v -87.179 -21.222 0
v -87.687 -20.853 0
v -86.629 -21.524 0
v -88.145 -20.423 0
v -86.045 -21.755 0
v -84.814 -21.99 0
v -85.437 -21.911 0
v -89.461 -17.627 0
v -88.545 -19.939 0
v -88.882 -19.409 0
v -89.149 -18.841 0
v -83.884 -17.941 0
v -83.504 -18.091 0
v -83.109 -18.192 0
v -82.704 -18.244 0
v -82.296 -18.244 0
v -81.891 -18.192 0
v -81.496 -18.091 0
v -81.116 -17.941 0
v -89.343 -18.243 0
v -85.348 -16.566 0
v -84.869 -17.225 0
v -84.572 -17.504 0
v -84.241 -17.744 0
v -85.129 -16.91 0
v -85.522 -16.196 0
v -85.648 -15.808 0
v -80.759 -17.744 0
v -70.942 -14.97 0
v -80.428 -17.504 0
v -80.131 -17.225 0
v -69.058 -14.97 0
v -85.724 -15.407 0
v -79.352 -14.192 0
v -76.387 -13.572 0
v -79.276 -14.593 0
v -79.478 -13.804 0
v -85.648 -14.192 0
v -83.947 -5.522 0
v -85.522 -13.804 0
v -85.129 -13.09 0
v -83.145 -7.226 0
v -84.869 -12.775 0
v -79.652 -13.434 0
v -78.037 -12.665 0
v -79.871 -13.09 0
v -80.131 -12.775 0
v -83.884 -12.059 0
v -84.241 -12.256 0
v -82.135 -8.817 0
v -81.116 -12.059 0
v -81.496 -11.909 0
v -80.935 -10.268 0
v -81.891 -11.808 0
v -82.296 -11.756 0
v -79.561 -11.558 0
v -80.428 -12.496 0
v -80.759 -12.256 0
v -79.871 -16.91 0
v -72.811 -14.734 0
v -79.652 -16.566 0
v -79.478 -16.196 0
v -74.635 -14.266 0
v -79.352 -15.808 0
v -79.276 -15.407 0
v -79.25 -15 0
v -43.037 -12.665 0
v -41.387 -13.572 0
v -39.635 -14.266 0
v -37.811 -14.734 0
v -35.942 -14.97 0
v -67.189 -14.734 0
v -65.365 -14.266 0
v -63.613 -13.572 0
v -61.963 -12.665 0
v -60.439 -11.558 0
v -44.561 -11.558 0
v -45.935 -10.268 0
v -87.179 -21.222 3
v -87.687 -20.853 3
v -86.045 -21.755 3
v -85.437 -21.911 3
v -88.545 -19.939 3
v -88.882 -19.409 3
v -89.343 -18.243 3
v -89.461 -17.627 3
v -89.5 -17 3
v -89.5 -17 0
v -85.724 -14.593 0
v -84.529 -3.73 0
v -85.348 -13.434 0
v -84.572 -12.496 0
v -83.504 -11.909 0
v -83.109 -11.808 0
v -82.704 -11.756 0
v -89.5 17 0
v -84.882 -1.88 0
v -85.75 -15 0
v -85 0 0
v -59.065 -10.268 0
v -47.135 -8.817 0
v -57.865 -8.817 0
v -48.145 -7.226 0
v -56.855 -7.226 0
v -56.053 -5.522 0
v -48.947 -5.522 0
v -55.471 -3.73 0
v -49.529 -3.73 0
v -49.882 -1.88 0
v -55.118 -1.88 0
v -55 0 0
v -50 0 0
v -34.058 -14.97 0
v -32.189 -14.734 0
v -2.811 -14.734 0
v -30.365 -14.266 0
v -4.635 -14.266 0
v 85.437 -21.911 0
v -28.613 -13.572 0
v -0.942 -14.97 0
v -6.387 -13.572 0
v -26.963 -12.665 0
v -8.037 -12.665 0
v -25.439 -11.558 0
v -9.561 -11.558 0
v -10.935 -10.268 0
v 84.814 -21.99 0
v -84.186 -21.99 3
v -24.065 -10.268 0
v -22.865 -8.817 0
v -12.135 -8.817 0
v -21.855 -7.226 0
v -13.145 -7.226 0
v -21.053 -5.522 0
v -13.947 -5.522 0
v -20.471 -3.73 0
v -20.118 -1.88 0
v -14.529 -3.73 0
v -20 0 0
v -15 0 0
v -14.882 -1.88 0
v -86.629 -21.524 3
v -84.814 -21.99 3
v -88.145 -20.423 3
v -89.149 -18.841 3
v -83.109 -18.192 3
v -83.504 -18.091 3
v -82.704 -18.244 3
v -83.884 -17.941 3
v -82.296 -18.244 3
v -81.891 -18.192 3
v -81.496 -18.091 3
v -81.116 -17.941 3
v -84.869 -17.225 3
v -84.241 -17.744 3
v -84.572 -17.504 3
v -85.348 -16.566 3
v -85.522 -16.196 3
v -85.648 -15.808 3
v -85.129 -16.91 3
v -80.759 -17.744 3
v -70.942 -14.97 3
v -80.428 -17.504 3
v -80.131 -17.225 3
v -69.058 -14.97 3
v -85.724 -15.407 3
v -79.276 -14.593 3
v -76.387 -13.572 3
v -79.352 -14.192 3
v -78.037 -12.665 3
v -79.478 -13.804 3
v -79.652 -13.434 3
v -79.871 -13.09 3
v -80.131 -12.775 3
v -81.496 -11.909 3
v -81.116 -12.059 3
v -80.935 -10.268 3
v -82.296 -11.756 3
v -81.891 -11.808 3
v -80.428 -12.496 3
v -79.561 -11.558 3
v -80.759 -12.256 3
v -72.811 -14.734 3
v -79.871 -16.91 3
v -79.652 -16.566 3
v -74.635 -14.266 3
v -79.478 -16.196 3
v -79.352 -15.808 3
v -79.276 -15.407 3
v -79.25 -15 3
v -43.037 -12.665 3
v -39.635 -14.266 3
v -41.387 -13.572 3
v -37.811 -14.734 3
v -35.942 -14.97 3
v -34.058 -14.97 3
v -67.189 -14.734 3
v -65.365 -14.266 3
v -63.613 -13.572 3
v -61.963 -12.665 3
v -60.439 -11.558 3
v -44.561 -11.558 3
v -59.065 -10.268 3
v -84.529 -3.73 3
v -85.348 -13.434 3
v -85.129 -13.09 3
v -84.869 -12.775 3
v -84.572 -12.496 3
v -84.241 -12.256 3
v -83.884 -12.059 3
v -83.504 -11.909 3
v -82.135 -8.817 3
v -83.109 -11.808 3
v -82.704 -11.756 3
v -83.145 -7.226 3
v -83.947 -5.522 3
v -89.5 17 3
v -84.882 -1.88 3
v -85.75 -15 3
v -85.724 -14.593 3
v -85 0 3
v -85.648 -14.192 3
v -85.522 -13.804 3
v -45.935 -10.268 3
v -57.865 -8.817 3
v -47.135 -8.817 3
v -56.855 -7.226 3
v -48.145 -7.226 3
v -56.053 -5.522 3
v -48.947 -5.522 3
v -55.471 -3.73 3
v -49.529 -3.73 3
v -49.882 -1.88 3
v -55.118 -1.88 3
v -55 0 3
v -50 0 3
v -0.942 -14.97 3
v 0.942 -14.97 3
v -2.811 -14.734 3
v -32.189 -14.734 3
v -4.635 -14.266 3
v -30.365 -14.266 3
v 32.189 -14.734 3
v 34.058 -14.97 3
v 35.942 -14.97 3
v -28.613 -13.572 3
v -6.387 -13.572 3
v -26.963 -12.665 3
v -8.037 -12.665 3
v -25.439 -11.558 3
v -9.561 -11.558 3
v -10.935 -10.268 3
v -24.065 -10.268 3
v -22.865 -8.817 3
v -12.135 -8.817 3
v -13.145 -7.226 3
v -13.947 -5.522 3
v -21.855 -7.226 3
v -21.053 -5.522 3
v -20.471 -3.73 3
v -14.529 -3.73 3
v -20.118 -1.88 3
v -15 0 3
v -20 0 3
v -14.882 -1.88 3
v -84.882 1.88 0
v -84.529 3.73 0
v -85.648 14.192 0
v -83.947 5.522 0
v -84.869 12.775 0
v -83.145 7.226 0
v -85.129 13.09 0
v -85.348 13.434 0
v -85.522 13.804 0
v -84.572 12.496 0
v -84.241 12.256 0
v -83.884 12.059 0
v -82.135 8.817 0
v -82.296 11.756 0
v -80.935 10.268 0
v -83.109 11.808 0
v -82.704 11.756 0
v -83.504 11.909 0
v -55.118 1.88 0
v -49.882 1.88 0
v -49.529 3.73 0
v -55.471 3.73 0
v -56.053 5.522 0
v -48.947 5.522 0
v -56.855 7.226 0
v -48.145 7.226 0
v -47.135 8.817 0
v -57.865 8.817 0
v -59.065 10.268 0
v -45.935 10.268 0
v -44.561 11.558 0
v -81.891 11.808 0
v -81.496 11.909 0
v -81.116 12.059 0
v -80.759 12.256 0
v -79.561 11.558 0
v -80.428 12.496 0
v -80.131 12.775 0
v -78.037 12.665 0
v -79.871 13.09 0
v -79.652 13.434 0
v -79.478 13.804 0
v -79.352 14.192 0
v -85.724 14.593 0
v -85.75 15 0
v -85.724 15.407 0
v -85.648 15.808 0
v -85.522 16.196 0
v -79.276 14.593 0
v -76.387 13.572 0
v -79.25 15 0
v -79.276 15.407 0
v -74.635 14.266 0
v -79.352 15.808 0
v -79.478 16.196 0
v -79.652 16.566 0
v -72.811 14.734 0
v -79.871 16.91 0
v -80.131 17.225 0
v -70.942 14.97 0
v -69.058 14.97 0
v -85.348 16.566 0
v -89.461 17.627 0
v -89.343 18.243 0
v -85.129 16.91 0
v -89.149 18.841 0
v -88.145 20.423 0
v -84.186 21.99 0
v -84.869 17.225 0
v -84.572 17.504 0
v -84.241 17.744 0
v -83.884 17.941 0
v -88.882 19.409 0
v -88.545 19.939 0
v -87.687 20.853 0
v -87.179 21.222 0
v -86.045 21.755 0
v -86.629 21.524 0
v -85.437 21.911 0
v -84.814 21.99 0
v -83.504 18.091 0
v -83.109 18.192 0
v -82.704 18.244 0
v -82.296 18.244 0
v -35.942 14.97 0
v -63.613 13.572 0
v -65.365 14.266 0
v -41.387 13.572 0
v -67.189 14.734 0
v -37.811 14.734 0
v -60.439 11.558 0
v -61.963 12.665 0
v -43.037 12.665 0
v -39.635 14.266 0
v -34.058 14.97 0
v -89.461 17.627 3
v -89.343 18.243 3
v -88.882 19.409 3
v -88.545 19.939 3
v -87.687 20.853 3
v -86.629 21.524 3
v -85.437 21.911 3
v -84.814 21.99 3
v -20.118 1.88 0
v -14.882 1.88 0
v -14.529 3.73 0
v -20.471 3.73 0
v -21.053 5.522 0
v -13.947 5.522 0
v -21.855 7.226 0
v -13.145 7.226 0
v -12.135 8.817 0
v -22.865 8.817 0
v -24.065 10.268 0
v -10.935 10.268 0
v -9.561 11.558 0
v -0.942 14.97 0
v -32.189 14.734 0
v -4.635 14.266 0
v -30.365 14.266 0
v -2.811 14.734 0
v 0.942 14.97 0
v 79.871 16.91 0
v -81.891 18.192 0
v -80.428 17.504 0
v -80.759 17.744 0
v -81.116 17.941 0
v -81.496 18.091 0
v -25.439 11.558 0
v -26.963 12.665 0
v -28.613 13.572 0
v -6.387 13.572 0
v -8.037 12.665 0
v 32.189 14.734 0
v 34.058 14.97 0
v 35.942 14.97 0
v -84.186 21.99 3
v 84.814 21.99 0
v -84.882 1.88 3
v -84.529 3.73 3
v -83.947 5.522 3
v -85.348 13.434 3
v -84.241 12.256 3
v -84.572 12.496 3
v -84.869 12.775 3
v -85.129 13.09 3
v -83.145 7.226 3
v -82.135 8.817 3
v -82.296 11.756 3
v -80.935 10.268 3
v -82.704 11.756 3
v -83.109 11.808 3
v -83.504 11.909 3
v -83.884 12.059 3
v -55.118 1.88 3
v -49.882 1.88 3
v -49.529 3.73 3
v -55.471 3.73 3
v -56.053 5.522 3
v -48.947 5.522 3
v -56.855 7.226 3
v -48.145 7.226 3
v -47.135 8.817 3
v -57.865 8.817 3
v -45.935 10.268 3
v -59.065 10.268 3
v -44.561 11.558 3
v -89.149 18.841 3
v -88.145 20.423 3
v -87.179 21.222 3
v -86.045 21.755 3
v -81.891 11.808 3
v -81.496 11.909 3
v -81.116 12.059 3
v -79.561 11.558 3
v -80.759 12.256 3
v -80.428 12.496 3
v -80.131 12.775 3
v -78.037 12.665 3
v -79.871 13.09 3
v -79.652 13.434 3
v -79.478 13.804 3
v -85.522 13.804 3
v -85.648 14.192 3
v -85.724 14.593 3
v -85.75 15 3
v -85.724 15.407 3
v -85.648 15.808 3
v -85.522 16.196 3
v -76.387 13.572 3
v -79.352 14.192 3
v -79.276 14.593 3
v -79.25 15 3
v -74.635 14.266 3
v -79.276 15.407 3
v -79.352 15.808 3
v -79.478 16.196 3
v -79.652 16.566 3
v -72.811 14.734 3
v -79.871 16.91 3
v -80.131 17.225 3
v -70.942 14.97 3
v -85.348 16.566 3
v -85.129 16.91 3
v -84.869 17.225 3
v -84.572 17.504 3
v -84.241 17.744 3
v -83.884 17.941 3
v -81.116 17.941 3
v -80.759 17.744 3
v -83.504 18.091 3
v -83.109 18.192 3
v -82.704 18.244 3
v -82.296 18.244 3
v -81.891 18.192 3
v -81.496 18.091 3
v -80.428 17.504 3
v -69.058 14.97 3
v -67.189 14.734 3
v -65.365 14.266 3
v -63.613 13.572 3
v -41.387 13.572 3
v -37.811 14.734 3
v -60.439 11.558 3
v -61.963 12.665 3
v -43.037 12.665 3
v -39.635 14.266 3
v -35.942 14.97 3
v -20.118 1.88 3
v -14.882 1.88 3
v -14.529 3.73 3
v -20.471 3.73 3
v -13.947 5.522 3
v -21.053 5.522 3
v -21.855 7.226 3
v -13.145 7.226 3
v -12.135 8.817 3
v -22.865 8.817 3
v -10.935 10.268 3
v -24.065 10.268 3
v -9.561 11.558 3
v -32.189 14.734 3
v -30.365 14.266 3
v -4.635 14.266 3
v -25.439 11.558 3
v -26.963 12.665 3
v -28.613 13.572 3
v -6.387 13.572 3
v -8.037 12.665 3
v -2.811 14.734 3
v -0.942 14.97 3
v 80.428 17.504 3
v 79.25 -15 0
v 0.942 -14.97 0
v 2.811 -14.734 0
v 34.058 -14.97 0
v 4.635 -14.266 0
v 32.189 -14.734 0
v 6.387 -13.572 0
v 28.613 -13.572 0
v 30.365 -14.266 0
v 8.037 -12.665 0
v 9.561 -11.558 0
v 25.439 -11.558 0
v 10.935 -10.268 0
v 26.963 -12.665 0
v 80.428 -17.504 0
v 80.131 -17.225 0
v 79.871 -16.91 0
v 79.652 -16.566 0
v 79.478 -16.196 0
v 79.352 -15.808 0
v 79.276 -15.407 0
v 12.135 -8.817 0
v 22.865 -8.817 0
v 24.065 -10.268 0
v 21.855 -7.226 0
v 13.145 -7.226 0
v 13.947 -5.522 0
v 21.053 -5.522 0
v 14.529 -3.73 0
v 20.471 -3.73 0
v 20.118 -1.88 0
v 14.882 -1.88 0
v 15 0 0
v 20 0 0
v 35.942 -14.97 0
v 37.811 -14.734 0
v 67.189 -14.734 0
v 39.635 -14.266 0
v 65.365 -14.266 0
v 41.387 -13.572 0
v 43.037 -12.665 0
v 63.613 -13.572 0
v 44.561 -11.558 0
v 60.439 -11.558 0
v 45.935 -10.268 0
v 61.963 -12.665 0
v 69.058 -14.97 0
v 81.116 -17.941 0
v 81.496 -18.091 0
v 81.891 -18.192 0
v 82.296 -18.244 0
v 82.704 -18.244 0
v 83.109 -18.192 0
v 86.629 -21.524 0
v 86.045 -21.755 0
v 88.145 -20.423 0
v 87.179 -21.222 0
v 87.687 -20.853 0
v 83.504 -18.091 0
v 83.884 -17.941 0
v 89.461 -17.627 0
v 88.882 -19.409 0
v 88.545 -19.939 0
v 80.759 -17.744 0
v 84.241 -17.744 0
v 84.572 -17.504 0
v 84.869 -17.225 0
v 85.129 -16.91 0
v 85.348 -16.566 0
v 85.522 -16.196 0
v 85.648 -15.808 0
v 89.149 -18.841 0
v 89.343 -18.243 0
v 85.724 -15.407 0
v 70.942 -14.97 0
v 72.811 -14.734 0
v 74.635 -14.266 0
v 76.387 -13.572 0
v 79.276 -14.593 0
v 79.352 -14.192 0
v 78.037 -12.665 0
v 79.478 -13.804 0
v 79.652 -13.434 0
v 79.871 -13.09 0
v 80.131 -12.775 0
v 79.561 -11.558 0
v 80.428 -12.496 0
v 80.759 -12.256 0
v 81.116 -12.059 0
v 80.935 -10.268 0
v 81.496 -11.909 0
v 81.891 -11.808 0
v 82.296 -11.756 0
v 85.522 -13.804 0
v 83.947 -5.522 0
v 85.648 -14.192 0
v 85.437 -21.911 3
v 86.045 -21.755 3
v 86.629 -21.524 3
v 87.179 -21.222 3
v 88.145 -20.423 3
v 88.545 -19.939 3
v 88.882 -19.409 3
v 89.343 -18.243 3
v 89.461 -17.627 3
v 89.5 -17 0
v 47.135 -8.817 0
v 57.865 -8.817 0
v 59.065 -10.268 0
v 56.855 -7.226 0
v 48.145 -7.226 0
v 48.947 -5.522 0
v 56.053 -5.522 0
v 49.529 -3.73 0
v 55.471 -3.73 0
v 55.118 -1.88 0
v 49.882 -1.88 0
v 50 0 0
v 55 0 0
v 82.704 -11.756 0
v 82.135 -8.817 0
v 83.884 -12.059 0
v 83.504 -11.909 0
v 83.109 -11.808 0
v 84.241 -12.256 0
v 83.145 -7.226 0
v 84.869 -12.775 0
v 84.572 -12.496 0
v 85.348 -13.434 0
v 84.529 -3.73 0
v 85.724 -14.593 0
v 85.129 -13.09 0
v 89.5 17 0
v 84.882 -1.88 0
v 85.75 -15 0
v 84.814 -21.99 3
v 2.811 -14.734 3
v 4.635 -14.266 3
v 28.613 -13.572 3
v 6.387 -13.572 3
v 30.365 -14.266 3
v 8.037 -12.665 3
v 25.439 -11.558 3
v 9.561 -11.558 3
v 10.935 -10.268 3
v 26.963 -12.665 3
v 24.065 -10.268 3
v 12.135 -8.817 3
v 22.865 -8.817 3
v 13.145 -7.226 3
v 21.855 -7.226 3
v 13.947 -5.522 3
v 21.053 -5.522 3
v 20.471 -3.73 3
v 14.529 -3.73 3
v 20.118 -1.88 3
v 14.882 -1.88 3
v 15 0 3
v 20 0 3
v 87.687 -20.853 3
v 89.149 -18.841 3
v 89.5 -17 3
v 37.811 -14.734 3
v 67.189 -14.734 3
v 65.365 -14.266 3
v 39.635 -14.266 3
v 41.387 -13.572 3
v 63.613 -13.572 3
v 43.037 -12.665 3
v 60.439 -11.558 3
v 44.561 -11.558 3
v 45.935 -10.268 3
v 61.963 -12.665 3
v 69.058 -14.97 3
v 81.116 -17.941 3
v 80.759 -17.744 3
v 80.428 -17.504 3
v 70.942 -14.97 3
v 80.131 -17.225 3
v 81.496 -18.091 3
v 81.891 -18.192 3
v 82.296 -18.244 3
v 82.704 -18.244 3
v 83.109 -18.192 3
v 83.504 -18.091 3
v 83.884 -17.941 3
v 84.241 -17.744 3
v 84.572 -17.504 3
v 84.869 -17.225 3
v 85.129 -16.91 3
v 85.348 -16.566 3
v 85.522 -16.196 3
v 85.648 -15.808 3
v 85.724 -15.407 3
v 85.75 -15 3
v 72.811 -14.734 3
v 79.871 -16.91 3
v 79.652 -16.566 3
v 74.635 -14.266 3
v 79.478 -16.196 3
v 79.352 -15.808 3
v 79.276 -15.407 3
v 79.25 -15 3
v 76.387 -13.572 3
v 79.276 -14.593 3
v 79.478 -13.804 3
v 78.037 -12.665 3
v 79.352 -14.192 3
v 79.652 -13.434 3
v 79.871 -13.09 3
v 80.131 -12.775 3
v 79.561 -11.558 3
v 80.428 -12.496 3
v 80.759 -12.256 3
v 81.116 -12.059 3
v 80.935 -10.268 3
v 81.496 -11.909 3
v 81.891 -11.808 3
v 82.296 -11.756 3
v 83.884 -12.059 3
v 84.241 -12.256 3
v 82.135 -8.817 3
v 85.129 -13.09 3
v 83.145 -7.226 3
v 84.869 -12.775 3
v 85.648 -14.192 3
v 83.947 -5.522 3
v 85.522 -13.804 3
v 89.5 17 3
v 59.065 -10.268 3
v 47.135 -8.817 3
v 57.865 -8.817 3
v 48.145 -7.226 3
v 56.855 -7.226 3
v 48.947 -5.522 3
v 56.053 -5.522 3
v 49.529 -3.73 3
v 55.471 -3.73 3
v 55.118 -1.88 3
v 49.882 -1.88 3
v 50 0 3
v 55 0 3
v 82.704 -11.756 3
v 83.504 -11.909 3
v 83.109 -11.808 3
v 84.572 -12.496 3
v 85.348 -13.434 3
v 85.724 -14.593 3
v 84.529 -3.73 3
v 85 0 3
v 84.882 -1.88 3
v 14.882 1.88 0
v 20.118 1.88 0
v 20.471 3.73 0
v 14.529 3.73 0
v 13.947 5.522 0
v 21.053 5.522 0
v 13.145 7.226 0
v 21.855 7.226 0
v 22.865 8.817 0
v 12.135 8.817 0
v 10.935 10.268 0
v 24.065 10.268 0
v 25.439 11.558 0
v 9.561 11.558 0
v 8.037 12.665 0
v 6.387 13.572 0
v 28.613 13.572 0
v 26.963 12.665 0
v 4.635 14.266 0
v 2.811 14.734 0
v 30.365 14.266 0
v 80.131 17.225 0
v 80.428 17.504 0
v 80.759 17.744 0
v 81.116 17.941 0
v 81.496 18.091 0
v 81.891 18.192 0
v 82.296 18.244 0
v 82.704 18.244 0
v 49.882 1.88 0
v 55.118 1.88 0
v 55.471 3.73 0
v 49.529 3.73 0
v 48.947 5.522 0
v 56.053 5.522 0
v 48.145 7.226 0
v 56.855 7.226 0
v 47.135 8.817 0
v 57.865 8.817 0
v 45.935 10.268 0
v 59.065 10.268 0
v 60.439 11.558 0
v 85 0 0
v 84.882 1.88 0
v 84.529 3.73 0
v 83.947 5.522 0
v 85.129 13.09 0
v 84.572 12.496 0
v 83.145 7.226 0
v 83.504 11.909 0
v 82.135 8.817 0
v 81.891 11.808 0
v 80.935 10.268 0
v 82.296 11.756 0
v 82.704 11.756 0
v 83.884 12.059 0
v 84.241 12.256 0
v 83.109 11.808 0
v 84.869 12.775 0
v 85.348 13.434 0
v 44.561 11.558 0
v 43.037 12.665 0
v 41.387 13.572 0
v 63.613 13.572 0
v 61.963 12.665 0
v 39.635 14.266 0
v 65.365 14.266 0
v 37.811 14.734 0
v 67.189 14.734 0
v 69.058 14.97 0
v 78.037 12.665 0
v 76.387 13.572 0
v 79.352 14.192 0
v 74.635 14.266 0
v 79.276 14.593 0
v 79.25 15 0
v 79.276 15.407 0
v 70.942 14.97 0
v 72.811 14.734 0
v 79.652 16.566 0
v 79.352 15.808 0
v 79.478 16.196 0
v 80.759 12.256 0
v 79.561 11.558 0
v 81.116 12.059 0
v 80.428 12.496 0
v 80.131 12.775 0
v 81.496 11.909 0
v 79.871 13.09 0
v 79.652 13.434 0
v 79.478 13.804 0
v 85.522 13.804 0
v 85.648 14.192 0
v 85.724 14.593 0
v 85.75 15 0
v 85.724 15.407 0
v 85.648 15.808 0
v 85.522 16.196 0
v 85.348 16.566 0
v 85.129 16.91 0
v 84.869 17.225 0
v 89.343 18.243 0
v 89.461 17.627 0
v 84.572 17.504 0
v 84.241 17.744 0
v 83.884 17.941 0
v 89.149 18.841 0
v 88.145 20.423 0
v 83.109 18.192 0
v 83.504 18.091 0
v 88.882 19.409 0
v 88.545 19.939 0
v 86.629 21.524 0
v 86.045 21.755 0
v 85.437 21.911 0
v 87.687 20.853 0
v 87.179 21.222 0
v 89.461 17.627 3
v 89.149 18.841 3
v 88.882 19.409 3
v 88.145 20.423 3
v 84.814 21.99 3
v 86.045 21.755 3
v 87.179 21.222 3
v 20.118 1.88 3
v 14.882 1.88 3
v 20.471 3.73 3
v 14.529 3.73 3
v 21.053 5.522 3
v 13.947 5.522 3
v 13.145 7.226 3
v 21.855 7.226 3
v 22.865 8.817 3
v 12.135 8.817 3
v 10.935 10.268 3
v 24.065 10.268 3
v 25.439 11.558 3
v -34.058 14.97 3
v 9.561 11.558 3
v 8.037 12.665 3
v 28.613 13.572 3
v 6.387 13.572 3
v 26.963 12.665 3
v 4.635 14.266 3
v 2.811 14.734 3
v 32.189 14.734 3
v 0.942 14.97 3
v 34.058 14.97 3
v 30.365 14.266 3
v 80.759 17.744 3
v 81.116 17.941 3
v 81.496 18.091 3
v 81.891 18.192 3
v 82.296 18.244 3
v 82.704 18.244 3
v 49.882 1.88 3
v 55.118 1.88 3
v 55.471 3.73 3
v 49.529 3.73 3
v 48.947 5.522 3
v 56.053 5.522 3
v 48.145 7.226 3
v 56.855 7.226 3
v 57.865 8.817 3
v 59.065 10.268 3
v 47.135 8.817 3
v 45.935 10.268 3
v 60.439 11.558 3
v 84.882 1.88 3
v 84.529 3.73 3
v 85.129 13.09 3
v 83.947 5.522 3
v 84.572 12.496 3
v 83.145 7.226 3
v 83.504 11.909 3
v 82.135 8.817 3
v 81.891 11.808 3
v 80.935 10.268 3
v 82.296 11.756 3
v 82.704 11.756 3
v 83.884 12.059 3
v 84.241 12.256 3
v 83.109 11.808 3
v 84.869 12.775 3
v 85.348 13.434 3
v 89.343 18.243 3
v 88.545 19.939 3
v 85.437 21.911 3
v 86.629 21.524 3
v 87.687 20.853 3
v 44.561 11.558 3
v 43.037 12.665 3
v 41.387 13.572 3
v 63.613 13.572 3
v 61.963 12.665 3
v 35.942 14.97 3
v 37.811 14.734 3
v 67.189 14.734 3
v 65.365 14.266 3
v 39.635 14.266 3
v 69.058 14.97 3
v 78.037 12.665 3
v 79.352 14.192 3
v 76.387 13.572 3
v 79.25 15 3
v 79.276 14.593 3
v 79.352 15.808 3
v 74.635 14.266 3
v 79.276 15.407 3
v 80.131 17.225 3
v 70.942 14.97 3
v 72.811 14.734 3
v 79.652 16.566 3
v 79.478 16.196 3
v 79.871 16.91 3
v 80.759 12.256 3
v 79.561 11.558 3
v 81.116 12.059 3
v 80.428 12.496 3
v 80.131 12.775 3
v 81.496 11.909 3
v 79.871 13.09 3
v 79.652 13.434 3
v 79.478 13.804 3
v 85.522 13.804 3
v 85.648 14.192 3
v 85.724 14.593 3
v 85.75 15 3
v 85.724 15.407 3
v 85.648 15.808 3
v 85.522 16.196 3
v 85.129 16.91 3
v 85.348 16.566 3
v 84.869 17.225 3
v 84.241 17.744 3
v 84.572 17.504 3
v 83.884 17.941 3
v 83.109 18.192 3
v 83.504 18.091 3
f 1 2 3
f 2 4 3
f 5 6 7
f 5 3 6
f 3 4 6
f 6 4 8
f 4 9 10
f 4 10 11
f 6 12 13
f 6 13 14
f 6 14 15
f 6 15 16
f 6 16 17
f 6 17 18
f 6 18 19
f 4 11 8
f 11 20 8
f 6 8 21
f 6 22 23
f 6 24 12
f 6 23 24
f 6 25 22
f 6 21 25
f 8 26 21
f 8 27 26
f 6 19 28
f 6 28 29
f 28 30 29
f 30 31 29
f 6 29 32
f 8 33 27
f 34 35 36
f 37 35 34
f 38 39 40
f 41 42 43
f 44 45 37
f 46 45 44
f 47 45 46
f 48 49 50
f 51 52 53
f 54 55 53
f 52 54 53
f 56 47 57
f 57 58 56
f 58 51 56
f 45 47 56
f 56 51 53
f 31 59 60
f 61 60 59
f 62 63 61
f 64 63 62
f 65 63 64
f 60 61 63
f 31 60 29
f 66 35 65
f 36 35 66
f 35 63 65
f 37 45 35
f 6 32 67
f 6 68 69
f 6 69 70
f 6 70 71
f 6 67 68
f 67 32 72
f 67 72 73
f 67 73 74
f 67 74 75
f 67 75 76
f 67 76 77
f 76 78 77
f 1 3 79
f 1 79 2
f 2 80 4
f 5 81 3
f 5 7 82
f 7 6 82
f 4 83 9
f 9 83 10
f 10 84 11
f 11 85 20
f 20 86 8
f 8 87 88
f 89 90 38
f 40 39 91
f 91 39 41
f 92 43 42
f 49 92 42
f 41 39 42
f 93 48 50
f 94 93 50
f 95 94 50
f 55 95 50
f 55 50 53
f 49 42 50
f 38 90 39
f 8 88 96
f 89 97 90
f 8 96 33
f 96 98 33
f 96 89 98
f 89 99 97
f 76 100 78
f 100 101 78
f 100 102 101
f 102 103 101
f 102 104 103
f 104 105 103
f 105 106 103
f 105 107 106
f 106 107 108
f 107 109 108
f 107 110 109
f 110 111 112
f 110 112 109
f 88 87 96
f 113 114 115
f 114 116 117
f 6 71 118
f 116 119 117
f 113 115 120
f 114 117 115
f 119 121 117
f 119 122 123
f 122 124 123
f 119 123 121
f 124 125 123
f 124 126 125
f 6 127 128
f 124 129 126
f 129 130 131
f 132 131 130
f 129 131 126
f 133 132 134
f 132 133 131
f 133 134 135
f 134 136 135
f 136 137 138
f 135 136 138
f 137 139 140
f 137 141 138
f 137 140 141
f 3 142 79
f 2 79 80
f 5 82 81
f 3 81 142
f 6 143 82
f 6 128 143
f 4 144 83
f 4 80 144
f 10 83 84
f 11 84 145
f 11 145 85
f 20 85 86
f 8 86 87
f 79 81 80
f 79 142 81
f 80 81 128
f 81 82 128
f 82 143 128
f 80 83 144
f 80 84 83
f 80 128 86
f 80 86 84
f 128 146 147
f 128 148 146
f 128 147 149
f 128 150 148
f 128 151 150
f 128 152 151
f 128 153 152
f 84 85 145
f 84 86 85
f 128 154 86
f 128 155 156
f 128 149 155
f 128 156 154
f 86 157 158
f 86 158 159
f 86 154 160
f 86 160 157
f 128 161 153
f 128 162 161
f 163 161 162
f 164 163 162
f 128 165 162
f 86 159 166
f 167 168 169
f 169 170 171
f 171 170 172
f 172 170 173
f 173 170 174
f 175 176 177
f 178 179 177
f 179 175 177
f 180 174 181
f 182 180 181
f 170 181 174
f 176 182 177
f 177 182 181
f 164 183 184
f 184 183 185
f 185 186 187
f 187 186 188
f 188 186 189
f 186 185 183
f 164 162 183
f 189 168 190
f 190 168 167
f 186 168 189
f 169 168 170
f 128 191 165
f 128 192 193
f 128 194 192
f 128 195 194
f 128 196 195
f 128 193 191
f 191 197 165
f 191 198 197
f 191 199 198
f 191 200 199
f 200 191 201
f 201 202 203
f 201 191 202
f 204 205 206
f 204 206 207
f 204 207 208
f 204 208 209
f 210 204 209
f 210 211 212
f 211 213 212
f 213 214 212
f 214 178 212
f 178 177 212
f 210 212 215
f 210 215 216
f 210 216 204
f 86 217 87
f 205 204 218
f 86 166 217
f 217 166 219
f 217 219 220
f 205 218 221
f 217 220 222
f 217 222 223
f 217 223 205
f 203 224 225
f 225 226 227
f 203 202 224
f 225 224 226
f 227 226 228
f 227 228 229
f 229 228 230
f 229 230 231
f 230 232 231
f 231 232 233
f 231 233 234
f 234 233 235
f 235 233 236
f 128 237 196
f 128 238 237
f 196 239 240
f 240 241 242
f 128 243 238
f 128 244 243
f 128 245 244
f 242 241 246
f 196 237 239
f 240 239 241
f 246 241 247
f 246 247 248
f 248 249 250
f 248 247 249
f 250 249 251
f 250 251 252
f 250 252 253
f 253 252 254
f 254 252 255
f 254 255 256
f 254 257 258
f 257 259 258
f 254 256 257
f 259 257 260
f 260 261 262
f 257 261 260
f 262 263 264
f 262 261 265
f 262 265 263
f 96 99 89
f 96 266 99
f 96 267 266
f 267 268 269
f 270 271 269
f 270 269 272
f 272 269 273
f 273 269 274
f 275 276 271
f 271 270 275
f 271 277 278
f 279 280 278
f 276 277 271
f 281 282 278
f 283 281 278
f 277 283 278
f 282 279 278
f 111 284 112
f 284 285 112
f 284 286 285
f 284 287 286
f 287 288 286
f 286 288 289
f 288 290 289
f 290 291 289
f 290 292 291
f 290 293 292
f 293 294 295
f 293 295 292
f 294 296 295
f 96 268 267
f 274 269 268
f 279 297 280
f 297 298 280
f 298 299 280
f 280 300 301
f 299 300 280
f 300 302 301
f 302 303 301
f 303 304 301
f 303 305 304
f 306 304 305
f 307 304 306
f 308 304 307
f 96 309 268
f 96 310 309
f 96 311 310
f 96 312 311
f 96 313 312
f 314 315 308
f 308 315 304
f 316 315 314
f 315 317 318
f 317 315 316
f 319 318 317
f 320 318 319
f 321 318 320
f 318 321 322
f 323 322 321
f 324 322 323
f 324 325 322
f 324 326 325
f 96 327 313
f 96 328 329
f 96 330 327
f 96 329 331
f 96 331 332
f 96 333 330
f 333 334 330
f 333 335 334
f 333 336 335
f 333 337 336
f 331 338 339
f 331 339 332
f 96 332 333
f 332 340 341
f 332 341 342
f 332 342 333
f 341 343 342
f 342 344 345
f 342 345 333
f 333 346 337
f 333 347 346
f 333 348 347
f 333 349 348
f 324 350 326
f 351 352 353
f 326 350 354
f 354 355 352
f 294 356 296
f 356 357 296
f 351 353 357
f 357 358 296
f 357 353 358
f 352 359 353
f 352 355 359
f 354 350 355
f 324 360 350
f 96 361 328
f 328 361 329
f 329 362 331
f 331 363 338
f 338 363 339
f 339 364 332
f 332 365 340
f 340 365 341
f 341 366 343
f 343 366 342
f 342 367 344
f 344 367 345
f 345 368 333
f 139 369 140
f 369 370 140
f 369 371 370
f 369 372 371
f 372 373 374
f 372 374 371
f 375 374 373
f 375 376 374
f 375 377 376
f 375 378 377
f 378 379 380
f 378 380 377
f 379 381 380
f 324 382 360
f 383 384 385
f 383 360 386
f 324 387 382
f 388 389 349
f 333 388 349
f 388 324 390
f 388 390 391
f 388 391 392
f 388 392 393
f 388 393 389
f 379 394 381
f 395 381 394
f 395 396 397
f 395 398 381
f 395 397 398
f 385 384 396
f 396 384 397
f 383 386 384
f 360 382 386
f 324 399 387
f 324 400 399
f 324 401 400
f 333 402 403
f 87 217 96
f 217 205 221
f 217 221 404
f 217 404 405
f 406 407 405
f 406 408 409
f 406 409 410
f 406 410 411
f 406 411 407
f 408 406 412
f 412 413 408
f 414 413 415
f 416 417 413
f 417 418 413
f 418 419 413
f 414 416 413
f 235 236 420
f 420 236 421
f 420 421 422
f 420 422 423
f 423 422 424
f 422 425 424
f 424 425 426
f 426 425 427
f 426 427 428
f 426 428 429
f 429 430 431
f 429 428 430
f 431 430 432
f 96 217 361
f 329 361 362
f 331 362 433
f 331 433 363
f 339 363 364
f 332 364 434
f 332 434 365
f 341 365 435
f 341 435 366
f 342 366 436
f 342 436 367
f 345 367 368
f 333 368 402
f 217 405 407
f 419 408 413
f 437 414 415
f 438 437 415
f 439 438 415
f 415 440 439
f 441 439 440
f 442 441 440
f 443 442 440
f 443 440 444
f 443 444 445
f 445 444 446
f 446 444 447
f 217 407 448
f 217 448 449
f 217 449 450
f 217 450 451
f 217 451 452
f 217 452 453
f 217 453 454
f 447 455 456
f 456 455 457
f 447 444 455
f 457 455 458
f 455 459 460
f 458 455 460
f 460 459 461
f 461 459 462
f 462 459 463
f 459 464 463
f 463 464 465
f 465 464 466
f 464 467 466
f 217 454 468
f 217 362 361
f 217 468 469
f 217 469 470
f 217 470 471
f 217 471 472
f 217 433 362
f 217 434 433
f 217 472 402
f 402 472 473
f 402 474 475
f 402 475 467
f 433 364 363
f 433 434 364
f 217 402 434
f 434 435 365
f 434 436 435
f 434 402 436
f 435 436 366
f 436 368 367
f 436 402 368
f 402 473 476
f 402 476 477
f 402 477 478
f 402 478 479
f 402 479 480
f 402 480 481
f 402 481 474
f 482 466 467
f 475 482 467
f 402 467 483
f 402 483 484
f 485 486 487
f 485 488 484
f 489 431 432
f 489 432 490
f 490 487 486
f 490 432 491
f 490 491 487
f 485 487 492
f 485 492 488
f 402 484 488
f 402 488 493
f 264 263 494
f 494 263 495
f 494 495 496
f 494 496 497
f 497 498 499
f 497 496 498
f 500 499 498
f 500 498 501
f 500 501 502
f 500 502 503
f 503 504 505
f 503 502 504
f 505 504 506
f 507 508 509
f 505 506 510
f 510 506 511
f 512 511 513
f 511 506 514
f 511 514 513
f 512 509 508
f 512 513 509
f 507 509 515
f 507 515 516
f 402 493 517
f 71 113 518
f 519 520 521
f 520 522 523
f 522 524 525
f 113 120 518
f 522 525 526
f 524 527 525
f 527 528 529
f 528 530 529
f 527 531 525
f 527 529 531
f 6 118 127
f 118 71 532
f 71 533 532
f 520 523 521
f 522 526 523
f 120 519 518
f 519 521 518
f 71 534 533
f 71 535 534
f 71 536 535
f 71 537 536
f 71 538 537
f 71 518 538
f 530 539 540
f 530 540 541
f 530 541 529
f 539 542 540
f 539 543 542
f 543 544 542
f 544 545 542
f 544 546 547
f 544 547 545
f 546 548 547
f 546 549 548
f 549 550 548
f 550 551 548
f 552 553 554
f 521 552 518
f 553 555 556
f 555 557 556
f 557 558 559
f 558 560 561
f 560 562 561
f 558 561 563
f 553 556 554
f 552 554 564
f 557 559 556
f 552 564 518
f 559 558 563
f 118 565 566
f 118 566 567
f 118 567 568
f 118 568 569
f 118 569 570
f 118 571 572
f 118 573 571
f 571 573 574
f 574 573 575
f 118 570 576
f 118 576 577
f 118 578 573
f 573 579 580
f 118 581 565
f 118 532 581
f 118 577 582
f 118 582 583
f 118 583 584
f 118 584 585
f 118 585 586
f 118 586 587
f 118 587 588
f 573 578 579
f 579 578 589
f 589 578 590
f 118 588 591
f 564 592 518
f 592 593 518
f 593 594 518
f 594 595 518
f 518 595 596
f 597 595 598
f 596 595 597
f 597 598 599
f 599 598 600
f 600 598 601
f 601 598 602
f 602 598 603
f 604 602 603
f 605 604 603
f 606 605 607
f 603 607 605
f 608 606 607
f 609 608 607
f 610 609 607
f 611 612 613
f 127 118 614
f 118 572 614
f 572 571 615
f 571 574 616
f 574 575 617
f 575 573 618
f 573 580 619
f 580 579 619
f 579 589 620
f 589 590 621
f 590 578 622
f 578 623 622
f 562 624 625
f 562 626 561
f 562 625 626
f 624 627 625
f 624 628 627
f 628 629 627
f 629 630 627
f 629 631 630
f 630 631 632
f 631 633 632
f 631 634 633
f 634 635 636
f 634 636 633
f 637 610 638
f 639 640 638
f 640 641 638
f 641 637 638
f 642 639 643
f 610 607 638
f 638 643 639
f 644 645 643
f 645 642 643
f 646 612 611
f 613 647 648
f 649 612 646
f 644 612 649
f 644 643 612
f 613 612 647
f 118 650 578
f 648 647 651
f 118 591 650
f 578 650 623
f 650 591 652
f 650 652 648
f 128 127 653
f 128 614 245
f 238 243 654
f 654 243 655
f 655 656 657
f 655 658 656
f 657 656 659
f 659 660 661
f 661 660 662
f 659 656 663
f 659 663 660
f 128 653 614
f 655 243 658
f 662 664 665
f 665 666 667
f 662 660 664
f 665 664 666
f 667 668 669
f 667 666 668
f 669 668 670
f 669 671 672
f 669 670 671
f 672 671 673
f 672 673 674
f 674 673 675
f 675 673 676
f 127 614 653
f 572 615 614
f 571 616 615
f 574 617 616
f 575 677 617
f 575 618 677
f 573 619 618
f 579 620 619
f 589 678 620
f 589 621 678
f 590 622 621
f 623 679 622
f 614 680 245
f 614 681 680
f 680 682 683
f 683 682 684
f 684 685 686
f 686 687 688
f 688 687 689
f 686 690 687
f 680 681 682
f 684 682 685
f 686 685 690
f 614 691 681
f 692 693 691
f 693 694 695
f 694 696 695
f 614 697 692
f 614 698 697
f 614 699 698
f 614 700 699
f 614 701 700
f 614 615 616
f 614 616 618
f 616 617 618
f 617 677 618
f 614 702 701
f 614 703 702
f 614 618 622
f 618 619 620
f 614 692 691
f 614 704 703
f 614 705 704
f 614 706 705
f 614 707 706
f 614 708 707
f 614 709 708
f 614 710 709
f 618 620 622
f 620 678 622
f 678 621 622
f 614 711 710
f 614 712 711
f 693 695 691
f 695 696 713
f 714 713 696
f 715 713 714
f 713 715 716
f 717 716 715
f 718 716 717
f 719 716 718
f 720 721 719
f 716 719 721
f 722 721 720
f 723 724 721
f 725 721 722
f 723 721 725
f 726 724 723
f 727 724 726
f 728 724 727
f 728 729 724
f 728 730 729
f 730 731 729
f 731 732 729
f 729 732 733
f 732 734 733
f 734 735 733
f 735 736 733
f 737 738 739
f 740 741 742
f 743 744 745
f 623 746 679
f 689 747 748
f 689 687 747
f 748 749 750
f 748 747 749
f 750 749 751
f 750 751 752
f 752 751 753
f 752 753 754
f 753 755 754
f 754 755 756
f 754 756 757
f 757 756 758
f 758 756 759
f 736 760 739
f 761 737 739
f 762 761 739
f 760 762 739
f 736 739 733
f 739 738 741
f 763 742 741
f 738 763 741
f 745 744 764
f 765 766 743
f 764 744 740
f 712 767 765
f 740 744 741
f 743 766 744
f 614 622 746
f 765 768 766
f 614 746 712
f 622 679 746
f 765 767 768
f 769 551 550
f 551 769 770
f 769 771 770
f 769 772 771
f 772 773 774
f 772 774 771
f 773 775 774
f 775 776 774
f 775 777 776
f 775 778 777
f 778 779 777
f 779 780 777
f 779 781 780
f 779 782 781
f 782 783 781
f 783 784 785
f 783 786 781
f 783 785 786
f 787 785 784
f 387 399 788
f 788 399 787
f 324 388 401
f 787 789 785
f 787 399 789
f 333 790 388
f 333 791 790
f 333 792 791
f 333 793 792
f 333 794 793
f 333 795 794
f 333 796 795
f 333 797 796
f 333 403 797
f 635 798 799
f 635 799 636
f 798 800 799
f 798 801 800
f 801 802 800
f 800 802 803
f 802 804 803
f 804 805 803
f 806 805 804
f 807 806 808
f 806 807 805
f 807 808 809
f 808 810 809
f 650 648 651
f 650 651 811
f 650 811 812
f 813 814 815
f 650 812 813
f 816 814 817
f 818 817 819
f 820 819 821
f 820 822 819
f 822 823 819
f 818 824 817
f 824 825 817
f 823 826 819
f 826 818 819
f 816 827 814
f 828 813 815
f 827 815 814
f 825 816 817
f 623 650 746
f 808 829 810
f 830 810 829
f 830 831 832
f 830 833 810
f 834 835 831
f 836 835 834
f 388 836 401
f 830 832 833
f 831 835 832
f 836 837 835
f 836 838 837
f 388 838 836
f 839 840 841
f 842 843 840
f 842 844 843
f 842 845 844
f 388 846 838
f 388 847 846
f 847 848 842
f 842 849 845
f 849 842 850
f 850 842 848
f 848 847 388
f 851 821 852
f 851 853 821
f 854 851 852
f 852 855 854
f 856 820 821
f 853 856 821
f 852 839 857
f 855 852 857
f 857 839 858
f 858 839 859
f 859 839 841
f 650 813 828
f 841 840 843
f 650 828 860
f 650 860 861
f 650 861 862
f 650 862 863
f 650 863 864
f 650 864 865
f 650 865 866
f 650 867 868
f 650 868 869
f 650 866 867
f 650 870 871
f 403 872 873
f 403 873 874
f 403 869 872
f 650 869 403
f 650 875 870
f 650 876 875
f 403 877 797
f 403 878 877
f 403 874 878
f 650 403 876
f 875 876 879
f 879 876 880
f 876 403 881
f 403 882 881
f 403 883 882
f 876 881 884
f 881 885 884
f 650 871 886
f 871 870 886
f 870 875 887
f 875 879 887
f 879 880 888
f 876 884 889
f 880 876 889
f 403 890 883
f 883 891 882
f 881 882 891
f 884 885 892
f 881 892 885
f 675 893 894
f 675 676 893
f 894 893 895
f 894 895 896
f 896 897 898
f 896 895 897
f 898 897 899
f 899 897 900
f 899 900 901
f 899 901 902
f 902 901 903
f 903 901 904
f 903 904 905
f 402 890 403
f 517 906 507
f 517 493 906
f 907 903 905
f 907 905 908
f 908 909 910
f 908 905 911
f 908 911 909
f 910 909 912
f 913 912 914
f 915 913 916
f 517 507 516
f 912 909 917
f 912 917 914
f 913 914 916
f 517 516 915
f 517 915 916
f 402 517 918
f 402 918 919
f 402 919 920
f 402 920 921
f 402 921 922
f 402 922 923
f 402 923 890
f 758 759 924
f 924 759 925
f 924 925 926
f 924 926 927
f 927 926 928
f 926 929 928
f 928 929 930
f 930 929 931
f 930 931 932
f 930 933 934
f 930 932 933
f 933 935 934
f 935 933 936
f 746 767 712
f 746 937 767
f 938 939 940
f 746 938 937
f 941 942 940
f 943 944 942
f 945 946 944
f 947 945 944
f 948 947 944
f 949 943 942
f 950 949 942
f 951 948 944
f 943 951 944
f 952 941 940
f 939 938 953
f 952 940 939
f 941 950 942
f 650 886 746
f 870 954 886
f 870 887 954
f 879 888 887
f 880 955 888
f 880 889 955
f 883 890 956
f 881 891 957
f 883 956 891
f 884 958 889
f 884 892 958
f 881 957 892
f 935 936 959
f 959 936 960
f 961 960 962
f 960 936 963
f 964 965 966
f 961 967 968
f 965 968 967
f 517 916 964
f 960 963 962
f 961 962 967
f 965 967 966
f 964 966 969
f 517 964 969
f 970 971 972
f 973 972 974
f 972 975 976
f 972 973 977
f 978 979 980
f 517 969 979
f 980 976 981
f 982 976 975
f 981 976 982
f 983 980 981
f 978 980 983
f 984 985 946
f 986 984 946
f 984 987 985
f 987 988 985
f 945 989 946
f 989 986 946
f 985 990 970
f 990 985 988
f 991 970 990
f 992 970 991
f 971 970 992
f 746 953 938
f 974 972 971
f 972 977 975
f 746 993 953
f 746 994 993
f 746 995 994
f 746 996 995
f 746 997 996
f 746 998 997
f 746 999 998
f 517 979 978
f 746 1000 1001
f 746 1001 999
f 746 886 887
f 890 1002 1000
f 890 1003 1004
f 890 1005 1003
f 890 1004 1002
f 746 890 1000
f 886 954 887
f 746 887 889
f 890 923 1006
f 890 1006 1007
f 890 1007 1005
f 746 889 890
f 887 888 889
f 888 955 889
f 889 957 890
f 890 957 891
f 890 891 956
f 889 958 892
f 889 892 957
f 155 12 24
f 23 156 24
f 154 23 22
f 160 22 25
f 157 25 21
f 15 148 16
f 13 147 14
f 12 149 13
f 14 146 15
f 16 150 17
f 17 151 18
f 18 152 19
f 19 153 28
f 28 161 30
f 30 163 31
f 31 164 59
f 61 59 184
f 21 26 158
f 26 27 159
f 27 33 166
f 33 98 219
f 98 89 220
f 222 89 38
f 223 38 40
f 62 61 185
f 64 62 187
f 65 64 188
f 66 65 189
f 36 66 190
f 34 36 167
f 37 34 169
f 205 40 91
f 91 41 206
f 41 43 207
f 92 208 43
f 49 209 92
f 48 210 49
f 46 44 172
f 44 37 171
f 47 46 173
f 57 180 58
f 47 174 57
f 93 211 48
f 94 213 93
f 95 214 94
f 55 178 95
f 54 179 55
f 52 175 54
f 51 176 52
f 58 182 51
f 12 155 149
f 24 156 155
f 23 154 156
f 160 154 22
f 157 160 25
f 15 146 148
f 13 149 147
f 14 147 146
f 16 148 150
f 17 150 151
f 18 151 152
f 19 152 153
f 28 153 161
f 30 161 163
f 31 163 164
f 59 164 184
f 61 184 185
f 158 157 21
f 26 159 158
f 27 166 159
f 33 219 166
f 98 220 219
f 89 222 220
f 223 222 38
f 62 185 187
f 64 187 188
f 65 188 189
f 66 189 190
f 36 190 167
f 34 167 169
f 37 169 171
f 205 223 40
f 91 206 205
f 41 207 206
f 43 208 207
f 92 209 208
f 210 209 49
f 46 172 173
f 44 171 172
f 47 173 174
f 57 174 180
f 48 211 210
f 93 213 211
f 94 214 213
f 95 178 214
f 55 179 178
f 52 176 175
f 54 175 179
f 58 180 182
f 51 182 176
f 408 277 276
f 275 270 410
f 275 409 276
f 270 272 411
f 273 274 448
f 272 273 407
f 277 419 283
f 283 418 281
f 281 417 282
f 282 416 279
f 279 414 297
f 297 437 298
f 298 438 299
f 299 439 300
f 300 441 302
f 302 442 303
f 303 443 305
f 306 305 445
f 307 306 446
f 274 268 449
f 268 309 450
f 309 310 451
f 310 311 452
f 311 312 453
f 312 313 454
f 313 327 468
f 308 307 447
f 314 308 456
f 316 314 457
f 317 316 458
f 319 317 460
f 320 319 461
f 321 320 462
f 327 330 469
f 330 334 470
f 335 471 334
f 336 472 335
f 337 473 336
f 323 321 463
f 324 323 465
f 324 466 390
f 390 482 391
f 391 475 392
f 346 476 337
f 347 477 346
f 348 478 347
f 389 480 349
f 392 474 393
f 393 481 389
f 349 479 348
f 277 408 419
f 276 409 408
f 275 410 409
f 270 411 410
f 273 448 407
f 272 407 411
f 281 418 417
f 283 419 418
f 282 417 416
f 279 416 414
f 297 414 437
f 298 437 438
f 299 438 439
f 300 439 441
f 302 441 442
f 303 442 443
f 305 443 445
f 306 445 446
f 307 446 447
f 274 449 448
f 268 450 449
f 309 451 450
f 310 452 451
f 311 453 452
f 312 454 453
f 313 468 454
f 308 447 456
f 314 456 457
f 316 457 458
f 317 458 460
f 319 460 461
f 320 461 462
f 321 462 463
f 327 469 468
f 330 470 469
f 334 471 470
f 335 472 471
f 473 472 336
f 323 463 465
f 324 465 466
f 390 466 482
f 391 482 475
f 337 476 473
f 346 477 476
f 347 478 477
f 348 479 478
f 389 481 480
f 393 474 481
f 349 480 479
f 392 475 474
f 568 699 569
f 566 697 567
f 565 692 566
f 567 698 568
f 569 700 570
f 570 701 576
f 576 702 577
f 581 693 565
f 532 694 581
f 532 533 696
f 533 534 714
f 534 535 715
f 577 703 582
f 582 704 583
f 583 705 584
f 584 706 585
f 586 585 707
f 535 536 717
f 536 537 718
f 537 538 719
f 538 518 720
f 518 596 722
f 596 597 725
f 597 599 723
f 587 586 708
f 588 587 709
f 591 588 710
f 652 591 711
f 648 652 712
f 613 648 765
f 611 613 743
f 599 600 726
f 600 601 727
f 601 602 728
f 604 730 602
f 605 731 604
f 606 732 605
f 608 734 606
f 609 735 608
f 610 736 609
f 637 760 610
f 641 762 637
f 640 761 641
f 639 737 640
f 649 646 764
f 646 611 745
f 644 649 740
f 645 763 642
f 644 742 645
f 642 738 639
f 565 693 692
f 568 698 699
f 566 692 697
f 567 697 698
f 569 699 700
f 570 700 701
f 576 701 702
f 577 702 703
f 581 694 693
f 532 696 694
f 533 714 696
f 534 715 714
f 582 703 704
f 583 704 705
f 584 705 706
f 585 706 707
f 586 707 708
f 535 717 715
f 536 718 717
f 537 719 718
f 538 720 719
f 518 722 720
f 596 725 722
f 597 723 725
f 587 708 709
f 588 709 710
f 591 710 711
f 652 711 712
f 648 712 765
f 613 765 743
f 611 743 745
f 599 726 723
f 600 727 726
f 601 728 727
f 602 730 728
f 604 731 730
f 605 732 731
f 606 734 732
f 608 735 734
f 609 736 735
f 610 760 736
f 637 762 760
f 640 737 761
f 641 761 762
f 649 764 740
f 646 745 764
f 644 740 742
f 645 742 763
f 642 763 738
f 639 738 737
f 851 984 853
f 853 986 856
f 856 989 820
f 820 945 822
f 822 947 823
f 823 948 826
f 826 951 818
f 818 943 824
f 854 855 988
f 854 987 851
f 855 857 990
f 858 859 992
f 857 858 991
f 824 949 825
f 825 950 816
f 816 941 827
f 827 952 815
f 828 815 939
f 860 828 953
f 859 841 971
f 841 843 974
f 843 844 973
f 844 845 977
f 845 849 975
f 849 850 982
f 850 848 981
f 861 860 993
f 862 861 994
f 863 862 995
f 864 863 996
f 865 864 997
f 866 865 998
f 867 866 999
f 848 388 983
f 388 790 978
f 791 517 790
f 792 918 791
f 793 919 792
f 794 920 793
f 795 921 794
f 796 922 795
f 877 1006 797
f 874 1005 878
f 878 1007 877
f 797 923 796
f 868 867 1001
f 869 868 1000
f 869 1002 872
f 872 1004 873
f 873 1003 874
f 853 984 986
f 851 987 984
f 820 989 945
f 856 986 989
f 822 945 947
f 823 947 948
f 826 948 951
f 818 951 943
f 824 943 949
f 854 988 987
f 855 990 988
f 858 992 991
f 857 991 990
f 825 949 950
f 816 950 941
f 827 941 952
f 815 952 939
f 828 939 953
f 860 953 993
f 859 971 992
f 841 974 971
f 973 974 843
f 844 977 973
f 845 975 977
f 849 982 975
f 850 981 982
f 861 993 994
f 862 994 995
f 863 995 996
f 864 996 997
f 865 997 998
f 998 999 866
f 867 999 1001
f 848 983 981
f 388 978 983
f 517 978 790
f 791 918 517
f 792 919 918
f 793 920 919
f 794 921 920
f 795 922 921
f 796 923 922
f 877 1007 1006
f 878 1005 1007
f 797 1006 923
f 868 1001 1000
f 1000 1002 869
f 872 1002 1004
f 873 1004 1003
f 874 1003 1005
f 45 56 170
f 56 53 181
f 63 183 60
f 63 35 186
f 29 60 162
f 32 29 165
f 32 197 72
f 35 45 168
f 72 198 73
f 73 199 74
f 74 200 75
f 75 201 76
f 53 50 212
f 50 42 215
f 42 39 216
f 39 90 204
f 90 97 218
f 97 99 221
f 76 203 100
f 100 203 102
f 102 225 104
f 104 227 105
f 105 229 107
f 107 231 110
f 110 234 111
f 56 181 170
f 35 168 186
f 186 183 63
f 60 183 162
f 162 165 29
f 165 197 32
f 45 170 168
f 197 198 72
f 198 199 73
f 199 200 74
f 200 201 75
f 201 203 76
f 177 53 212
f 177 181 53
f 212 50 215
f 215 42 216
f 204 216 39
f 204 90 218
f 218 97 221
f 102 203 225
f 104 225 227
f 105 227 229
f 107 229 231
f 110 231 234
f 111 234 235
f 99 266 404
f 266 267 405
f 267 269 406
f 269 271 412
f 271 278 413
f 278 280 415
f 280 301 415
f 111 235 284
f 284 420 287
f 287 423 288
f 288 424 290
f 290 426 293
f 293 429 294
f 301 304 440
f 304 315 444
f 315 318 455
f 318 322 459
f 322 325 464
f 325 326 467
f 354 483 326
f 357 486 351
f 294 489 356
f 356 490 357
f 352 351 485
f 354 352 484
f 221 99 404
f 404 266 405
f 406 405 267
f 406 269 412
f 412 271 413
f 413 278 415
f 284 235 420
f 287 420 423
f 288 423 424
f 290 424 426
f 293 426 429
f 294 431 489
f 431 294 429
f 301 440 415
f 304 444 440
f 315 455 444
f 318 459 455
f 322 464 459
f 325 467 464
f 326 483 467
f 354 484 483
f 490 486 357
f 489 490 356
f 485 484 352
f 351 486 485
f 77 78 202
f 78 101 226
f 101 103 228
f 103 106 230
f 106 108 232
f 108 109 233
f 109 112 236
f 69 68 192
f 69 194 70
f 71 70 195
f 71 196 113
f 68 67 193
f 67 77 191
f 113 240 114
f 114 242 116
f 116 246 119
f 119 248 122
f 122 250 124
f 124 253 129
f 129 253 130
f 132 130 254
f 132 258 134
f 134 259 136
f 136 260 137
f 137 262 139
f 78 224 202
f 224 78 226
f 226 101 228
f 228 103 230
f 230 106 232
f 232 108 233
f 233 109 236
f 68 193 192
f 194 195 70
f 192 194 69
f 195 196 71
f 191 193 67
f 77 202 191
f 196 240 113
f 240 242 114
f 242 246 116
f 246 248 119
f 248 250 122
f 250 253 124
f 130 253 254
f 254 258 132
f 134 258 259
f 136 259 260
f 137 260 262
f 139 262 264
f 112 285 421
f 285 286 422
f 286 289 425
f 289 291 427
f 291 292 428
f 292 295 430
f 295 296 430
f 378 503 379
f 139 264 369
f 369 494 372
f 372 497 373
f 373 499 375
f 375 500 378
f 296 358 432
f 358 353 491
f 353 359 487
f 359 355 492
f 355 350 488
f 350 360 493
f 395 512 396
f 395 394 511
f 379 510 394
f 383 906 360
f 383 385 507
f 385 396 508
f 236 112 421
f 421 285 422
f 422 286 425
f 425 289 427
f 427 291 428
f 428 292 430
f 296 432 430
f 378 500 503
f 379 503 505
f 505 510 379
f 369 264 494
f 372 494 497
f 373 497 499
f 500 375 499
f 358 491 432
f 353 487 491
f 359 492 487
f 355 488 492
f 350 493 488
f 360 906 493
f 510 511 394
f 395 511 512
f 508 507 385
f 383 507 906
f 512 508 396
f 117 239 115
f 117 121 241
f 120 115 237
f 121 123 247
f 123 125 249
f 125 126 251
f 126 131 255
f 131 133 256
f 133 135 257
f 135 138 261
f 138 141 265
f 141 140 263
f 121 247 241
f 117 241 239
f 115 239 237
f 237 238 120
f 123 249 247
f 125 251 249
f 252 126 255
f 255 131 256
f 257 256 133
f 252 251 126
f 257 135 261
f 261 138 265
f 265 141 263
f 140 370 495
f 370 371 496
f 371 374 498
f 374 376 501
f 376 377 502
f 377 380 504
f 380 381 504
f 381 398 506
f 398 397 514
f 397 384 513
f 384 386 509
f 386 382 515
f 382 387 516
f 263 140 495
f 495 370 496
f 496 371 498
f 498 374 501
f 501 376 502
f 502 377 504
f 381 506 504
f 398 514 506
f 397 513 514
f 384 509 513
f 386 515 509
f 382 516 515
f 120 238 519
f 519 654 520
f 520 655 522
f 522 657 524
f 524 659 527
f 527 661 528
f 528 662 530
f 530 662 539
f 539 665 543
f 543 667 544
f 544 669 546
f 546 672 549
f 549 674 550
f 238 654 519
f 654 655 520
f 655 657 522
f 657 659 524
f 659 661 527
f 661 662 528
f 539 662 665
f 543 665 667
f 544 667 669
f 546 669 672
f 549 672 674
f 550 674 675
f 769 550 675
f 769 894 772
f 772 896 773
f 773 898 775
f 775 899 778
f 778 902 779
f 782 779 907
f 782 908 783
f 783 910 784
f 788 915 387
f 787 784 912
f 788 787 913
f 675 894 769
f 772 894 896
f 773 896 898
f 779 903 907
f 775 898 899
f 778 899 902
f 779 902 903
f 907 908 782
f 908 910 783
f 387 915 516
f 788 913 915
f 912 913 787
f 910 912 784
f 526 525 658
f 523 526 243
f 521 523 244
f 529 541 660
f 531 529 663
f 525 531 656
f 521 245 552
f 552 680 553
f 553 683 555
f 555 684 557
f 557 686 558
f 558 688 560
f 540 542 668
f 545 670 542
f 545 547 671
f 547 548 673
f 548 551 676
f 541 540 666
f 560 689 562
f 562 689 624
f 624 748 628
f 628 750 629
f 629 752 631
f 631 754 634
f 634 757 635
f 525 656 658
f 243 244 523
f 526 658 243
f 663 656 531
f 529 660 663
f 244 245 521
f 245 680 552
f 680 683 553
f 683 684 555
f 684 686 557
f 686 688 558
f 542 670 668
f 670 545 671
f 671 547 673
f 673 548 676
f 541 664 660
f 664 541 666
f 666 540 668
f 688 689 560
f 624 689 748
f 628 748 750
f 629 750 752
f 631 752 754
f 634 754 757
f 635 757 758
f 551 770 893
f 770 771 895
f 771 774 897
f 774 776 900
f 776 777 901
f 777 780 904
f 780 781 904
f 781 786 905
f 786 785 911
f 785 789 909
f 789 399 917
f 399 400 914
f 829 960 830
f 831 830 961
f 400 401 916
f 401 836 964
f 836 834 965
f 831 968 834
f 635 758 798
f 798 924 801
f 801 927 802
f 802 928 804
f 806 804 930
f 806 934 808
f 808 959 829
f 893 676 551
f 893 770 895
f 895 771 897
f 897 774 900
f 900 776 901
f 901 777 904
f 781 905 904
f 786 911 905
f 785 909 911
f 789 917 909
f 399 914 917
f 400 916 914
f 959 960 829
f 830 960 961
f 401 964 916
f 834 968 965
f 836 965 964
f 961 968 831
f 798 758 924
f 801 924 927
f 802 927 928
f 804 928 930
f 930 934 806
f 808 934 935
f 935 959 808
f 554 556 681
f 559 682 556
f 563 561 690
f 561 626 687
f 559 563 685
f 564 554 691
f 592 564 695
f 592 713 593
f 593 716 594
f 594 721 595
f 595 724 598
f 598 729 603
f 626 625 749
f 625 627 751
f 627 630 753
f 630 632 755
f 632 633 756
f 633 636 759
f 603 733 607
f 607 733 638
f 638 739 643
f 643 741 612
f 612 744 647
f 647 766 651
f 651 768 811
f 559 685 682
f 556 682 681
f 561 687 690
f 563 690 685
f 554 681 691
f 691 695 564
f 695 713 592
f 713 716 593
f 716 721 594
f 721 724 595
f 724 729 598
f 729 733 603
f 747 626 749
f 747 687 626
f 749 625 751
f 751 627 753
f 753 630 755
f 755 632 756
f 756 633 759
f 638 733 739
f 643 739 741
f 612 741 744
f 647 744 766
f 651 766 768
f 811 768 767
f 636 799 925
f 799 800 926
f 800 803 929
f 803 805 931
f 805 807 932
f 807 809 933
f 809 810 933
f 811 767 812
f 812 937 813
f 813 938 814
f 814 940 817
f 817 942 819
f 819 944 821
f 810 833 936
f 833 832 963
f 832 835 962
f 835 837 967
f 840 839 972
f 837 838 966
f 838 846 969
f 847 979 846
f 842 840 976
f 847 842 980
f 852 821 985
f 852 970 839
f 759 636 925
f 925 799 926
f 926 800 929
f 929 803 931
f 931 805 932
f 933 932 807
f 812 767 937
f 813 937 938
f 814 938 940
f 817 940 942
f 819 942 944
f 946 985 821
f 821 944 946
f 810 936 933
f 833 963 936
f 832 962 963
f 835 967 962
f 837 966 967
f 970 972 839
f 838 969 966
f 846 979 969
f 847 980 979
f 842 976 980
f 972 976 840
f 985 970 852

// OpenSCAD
$fn = 50;

difference() {
	union() {
		hull() {
			translate(v = [-84.5, 17.0, 0]) {
				cylinder(h = 3, r = 5);
			}
			translate(v = [84.5, 17.0, 0]) {
				cylinder(h = 3, r = 5);
			}
			translate(v = [-84.5, -17.0, 0]) {
				cylinder(h = 3, r = 5);
			}
			translate(v = [84.5, -17.0, 0]) {
				cylinder(h = 3, r = 5);
			}
		}
	}
	union() {
		translate(v = [-82.5, -15.0, -100.0]) {
			cylinder(h = 200, r = 3.25);
		}
		translate(v = [-82.5, 15.0, -100.0]) {
			cylinder(h = 200, r = 3.25);
		}
		translate(v = [82.5, -15.0, -100.0]) {
			cylinder(h = 200, r = 3.25);
		}
		translate(v = [82.5, 15.0, -100.0]) {
			cylinder(h = 200, r = 3.25);
		}
		translate(v = [-82.5, -15.0, -100.0]) {
			cylinder(h = 200, r = 1.8);
		}
		translate(v = [-82.5, 15.0, -100.0]) {
			cylinder(h = 200, r = 1.8);
		}
		translate(v = [82.5, -15.0, -100.0]) {
			cylinder(h = 200, r = 1.8);
		}
		translate(v = [82.5, 15.0, -100.0]) {
			cylinder(h = 200, r = 1.8);
		}
		translate(v = [-70.0, 0, 0.0]) {
			cylinder(h = 3, r = 15.0);
		}
		translate(v = [-35.0, 0, 0.0]) {
			cylinder(h = 3, r = 15.0);
		}
		cylinder(h = 3, r = 15.0);
		translate(v = [35.0, 0, 0.0]) {
			cylinder(h = 3, r = 15.0);
		}
		translate(v = [70.0, 0, 0.0]) {
			cylinder(h = 3, r = 15.0);
		}
	}
}
